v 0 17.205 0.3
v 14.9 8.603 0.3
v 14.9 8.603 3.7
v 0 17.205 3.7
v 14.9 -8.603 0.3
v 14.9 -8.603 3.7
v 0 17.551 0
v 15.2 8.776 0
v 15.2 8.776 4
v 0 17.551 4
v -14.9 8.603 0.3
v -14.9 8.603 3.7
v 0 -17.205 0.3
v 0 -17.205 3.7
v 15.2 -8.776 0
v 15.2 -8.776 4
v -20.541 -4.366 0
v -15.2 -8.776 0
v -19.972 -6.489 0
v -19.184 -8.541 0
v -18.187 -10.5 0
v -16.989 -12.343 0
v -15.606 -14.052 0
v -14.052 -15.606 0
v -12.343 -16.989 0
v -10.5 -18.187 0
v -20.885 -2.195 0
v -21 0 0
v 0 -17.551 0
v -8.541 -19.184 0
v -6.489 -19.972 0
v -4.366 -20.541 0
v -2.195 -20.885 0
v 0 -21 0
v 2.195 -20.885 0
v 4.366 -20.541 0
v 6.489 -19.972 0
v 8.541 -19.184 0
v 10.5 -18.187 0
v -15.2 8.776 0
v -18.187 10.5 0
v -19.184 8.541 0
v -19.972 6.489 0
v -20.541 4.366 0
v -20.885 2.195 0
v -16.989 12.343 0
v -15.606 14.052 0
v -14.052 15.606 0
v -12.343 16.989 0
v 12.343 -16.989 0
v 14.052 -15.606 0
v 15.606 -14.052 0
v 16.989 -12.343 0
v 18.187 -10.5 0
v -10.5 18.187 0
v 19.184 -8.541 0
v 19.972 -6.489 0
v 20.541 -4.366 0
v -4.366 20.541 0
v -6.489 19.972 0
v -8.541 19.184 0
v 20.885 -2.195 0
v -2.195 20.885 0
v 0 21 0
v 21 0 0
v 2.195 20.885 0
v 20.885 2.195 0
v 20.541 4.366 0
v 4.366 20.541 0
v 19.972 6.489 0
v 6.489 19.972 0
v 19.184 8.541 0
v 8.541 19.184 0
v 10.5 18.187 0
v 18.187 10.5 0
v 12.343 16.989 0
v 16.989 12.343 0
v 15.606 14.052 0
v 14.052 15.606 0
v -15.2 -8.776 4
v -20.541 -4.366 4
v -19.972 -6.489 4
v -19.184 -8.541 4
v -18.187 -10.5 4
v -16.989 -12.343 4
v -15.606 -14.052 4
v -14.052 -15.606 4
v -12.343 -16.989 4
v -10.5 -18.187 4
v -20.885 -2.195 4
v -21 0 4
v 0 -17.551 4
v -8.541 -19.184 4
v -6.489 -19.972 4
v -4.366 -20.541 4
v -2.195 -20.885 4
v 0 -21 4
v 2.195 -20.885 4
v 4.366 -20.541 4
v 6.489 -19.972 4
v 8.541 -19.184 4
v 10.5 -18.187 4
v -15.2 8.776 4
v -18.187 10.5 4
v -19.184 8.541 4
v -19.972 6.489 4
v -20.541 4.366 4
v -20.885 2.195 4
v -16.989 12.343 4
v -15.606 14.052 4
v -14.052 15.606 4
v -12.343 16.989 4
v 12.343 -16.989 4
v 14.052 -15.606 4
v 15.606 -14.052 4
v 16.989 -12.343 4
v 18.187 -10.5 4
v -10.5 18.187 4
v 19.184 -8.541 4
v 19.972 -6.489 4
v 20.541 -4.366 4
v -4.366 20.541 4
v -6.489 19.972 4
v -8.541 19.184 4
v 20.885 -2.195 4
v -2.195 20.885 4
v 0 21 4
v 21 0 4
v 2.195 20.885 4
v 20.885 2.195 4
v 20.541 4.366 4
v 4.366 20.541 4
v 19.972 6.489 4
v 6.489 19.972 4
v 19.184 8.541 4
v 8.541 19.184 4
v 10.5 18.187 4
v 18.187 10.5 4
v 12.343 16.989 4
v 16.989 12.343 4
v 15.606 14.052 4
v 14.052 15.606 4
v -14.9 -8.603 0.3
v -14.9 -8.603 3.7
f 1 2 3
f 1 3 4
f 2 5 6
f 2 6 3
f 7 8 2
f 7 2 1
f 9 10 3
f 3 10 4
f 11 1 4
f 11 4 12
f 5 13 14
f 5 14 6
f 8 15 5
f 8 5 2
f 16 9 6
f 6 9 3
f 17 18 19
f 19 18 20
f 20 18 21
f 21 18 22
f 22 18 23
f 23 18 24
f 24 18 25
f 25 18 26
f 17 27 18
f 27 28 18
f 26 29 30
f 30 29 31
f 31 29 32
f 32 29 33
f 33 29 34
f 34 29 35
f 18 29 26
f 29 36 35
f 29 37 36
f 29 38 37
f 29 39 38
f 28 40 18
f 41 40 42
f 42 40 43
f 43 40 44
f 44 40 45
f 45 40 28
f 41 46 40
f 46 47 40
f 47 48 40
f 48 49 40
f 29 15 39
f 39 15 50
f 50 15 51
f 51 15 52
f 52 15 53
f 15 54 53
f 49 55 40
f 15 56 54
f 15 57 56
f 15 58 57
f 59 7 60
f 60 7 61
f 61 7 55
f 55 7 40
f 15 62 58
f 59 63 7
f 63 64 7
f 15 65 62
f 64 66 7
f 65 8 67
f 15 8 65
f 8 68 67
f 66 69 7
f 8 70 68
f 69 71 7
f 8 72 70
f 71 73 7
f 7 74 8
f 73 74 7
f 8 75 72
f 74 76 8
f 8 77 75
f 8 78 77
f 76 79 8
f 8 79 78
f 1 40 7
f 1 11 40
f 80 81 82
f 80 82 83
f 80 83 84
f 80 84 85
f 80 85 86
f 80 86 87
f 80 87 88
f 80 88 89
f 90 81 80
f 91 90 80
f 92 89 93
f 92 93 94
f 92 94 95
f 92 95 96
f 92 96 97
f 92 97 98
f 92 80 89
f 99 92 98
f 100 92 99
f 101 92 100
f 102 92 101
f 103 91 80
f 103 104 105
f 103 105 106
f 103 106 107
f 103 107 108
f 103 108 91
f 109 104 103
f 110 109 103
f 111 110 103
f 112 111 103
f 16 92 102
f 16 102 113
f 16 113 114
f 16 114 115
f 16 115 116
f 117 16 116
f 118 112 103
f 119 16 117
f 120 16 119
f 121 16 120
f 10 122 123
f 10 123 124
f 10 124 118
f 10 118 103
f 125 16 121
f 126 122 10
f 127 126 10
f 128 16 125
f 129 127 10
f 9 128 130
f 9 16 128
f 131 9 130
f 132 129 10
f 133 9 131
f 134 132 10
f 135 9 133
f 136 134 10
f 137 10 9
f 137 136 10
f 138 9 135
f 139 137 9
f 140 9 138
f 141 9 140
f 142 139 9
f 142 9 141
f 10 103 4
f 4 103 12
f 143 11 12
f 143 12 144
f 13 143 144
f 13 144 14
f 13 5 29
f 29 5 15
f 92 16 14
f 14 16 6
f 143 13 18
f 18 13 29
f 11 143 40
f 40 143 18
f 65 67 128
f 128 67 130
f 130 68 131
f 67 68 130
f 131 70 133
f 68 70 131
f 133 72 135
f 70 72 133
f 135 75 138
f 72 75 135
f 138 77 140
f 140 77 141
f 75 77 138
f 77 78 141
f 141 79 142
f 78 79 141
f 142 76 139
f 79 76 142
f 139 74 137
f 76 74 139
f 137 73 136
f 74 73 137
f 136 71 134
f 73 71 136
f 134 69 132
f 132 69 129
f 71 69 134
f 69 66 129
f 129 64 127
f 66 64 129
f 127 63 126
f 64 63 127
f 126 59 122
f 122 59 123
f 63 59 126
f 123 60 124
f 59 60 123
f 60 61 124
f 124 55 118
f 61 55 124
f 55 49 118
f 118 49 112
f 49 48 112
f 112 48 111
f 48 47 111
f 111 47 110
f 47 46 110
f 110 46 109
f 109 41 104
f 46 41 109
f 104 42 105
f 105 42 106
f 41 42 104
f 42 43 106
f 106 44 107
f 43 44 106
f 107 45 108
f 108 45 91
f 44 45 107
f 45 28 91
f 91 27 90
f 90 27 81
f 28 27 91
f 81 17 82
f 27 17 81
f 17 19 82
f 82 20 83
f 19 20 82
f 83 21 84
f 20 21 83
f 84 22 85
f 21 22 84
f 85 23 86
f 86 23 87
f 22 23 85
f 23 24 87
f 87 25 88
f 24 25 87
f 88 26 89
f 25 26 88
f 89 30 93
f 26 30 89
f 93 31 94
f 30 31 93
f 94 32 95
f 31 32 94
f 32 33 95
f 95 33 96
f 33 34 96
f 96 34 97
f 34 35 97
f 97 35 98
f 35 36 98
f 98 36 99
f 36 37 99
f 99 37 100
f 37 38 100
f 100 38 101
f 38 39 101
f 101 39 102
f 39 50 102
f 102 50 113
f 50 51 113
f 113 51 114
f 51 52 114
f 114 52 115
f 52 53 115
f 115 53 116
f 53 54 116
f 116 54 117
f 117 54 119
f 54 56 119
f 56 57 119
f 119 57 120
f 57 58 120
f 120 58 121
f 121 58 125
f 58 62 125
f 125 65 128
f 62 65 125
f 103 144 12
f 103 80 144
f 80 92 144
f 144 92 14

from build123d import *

# Parameters (mm, degrees)
SKETCH_R        = 21
PAD_DEPTH       = 4
CHAMFER_SIZE    = 0.3
CHAMFER001_SIZE = 0.3


with BuildPart() as part:
    # Sketch → Pad (new body)
    with BuildSketch(Plane.XY):
        Circle(SKETCH_R)
        Polygon((0, 17.205038), (-14.9, 8.602519), (-14.9, -8.602519), (0, -17.205038), (14.9, -8.602519), (14.9, 8.602519), align=None, mode=Mode.SUBTRACT)
    extrude(amount=PAD_DEPTH)

    # Chamfer
    chamfer_edges = [part.edges().sort_by_distance(p)[0] for p in [
        (-7.45, 12.903779, 4),
        (-14.9, 0, 4),
        (-7.45, -12.903779, 4),
        (7.45, -12.903779, 4),
        (14.9, 0, 4),
        (7.45, 12.903779, 4),
    ]]
    chamfer(chamfer_edges, length=CHAMFER_SIZE)

    # Chamfer001
    chamfer001_edges = [part.edges().sort_by_distance(p)[0] for p in [
        (-7.45, -12.903779, 0),
        (-14.9, 0, 0),
        (-7.45, 12.903779, 0),
        (7.45, 12.903779, 0),
        (14.9, 0, 0),
        (7.45, -12.903779, 0),
    ]]
    chamfer(chamfer001_edges, length=CHAMFER001_SIZE)


solid = part.part
